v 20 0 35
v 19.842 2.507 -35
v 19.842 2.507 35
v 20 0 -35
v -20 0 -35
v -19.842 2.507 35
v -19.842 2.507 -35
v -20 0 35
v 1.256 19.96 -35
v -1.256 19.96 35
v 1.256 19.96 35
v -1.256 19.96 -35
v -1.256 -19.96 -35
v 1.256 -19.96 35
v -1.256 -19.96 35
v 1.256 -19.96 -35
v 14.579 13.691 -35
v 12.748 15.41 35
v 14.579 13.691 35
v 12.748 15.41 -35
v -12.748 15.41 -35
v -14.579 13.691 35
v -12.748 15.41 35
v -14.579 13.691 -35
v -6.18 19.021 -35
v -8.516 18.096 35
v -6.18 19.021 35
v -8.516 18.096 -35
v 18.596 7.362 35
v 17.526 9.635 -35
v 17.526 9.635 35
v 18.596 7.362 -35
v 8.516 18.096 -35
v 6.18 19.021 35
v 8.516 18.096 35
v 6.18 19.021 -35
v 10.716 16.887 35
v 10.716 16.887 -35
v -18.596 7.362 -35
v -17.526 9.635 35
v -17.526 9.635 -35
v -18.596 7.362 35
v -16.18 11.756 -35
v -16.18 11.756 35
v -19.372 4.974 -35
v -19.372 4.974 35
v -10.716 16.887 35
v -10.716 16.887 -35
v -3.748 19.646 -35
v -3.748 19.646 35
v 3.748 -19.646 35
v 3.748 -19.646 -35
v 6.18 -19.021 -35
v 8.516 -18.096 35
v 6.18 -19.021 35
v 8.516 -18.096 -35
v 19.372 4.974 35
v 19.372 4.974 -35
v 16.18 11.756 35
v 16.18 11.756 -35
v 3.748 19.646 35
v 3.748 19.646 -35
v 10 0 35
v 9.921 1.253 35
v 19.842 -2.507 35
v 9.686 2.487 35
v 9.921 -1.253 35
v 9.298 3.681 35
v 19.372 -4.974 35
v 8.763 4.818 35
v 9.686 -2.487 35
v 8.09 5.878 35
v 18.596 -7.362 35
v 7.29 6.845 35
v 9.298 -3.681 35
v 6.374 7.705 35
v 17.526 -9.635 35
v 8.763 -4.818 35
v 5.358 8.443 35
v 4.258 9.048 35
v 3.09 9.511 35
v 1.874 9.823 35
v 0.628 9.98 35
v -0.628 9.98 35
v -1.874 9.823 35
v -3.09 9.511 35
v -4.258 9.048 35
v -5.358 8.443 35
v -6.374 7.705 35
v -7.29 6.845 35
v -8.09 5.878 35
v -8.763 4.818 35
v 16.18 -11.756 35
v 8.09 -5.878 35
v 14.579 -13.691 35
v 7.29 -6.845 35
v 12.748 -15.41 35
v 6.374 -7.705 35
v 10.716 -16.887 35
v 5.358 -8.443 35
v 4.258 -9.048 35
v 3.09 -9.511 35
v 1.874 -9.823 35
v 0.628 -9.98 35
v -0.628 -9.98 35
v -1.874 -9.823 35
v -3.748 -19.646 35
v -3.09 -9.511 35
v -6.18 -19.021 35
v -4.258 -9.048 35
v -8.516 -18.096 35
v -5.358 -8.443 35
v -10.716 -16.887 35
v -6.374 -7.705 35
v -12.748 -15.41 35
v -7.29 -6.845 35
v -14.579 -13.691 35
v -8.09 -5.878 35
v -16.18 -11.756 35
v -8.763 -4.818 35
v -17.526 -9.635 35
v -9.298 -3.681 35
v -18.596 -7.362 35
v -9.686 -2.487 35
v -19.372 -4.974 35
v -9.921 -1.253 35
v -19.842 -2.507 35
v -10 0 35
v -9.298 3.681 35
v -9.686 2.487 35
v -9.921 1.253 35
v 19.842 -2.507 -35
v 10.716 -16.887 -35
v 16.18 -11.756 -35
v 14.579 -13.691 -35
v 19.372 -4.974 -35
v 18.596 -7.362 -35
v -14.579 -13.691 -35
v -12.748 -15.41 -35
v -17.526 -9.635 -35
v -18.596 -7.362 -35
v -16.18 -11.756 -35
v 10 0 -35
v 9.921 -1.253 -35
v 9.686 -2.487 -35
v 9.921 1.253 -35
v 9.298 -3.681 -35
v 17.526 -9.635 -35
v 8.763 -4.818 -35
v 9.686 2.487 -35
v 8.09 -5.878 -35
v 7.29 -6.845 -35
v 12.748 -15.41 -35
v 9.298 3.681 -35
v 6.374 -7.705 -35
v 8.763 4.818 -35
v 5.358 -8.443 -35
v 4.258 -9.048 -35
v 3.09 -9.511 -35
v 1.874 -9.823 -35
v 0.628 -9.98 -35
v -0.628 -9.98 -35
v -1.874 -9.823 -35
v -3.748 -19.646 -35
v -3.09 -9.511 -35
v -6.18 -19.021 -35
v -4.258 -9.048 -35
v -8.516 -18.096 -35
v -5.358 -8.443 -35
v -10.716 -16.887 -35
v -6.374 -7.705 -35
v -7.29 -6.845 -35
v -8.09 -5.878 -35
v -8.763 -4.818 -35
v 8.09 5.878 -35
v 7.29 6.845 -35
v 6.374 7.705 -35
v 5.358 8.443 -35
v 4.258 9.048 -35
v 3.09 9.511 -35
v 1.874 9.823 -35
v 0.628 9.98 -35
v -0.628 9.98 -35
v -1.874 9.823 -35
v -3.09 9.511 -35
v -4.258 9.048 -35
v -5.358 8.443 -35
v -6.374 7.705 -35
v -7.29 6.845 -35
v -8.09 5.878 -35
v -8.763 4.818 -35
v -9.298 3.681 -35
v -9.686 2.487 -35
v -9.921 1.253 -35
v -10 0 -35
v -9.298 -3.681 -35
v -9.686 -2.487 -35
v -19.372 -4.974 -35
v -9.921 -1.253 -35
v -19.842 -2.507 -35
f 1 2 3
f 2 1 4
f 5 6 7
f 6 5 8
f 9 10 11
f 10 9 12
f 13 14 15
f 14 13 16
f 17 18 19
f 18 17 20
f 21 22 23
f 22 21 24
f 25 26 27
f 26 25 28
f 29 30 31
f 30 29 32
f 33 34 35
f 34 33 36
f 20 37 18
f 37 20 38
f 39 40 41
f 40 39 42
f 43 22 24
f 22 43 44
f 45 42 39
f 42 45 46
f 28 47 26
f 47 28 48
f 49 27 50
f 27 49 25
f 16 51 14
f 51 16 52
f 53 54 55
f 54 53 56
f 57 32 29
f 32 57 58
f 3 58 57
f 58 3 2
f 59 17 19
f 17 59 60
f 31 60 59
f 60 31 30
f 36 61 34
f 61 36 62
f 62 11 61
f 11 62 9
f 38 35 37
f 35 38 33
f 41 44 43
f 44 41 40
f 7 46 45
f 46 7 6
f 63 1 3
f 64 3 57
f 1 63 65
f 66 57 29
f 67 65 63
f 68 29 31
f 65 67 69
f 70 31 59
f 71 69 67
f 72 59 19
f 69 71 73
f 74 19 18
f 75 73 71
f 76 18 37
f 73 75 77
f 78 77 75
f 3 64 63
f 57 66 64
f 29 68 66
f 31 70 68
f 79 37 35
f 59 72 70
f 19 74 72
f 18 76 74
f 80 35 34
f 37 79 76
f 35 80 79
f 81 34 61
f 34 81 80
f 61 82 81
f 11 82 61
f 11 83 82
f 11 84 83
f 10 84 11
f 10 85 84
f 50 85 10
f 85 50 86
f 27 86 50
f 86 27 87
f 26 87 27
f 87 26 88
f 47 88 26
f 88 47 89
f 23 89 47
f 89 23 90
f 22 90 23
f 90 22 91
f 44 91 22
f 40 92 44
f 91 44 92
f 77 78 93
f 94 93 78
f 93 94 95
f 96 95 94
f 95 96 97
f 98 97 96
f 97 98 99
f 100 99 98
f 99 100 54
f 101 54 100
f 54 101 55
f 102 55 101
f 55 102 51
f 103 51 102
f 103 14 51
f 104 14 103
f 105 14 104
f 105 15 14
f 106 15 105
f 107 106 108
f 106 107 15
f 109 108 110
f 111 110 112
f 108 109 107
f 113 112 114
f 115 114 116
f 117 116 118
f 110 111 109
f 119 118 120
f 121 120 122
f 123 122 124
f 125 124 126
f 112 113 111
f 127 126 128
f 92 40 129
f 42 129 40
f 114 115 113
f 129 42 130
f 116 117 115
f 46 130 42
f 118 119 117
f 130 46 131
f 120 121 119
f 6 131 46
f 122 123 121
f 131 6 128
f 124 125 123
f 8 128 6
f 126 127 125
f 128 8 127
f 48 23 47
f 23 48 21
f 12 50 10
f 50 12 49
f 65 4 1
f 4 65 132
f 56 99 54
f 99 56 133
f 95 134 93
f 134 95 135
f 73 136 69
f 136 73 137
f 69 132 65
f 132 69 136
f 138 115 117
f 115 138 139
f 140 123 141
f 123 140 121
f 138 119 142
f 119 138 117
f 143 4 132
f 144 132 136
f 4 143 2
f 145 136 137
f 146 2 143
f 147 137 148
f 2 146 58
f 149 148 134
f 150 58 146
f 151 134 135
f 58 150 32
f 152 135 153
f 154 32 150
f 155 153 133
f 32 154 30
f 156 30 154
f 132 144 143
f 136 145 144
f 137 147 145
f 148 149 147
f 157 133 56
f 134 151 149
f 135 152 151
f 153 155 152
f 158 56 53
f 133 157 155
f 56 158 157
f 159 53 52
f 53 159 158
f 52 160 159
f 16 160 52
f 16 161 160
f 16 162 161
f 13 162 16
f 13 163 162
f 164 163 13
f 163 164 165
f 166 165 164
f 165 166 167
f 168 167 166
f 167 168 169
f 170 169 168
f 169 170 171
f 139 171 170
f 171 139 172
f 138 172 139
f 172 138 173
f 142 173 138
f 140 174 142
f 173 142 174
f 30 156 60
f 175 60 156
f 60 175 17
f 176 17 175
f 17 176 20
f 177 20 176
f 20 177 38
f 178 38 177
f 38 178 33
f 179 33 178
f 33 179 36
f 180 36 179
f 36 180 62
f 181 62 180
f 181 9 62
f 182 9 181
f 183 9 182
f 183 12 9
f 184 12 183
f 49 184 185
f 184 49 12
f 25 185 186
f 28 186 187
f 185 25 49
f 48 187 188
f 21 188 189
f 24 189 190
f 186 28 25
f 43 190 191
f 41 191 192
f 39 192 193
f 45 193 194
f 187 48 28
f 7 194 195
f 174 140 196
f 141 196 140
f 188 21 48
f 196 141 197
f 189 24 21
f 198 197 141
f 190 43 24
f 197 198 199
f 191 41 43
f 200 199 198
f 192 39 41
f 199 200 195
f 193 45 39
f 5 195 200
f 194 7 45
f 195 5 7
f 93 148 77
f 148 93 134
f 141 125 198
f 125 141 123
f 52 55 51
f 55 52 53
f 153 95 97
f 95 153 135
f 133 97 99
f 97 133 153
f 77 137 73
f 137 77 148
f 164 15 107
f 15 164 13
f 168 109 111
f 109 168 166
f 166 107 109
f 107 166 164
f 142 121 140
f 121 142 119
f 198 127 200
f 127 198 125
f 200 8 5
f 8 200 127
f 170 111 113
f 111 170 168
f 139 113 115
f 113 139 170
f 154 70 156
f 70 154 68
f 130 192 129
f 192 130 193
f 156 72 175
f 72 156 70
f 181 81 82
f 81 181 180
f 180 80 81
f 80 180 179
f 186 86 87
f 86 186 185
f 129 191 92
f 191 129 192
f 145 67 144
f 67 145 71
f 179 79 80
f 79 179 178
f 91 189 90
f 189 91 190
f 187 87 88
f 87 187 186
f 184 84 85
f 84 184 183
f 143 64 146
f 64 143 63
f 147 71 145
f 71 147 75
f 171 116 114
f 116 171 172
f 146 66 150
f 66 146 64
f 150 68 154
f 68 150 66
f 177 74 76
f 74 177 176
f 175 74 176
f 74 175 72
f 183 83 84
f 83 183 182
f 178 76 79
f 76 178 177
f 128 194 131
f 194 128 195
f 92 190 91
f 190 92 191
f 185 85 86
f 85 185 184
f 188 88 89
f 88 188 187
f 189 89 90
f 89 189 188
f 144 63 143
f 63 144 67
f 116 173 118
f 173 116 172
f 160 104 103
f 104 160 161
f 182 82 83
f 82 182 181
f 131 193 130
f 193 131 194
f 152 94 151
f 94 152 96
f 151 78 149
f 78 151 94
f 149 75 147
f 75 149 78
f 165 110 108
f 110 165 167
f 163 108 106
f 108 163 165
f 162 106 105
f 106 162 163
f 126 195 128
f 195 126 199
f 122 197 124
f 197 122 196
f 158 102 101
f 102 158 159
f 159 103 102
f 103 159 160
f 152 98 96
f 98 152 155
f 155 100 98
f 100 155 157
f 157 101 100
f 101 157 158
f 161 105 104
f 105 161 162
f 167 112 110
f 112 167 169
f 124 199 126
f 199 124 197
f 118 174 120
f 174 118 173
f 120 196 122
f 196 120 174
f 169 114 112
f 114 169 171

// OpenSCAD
$fn = 50;


difference() {
	union() {
		translate(v = [0, 0, -35.0000000000]) {
			cylinder(h = 70, r = 20.0000000000);
		}
	}
	union() {
		translate(v = [0, 0, -100.0000000000]) {
			cylinder(h = 200, r = 10);
		}
	}
}
